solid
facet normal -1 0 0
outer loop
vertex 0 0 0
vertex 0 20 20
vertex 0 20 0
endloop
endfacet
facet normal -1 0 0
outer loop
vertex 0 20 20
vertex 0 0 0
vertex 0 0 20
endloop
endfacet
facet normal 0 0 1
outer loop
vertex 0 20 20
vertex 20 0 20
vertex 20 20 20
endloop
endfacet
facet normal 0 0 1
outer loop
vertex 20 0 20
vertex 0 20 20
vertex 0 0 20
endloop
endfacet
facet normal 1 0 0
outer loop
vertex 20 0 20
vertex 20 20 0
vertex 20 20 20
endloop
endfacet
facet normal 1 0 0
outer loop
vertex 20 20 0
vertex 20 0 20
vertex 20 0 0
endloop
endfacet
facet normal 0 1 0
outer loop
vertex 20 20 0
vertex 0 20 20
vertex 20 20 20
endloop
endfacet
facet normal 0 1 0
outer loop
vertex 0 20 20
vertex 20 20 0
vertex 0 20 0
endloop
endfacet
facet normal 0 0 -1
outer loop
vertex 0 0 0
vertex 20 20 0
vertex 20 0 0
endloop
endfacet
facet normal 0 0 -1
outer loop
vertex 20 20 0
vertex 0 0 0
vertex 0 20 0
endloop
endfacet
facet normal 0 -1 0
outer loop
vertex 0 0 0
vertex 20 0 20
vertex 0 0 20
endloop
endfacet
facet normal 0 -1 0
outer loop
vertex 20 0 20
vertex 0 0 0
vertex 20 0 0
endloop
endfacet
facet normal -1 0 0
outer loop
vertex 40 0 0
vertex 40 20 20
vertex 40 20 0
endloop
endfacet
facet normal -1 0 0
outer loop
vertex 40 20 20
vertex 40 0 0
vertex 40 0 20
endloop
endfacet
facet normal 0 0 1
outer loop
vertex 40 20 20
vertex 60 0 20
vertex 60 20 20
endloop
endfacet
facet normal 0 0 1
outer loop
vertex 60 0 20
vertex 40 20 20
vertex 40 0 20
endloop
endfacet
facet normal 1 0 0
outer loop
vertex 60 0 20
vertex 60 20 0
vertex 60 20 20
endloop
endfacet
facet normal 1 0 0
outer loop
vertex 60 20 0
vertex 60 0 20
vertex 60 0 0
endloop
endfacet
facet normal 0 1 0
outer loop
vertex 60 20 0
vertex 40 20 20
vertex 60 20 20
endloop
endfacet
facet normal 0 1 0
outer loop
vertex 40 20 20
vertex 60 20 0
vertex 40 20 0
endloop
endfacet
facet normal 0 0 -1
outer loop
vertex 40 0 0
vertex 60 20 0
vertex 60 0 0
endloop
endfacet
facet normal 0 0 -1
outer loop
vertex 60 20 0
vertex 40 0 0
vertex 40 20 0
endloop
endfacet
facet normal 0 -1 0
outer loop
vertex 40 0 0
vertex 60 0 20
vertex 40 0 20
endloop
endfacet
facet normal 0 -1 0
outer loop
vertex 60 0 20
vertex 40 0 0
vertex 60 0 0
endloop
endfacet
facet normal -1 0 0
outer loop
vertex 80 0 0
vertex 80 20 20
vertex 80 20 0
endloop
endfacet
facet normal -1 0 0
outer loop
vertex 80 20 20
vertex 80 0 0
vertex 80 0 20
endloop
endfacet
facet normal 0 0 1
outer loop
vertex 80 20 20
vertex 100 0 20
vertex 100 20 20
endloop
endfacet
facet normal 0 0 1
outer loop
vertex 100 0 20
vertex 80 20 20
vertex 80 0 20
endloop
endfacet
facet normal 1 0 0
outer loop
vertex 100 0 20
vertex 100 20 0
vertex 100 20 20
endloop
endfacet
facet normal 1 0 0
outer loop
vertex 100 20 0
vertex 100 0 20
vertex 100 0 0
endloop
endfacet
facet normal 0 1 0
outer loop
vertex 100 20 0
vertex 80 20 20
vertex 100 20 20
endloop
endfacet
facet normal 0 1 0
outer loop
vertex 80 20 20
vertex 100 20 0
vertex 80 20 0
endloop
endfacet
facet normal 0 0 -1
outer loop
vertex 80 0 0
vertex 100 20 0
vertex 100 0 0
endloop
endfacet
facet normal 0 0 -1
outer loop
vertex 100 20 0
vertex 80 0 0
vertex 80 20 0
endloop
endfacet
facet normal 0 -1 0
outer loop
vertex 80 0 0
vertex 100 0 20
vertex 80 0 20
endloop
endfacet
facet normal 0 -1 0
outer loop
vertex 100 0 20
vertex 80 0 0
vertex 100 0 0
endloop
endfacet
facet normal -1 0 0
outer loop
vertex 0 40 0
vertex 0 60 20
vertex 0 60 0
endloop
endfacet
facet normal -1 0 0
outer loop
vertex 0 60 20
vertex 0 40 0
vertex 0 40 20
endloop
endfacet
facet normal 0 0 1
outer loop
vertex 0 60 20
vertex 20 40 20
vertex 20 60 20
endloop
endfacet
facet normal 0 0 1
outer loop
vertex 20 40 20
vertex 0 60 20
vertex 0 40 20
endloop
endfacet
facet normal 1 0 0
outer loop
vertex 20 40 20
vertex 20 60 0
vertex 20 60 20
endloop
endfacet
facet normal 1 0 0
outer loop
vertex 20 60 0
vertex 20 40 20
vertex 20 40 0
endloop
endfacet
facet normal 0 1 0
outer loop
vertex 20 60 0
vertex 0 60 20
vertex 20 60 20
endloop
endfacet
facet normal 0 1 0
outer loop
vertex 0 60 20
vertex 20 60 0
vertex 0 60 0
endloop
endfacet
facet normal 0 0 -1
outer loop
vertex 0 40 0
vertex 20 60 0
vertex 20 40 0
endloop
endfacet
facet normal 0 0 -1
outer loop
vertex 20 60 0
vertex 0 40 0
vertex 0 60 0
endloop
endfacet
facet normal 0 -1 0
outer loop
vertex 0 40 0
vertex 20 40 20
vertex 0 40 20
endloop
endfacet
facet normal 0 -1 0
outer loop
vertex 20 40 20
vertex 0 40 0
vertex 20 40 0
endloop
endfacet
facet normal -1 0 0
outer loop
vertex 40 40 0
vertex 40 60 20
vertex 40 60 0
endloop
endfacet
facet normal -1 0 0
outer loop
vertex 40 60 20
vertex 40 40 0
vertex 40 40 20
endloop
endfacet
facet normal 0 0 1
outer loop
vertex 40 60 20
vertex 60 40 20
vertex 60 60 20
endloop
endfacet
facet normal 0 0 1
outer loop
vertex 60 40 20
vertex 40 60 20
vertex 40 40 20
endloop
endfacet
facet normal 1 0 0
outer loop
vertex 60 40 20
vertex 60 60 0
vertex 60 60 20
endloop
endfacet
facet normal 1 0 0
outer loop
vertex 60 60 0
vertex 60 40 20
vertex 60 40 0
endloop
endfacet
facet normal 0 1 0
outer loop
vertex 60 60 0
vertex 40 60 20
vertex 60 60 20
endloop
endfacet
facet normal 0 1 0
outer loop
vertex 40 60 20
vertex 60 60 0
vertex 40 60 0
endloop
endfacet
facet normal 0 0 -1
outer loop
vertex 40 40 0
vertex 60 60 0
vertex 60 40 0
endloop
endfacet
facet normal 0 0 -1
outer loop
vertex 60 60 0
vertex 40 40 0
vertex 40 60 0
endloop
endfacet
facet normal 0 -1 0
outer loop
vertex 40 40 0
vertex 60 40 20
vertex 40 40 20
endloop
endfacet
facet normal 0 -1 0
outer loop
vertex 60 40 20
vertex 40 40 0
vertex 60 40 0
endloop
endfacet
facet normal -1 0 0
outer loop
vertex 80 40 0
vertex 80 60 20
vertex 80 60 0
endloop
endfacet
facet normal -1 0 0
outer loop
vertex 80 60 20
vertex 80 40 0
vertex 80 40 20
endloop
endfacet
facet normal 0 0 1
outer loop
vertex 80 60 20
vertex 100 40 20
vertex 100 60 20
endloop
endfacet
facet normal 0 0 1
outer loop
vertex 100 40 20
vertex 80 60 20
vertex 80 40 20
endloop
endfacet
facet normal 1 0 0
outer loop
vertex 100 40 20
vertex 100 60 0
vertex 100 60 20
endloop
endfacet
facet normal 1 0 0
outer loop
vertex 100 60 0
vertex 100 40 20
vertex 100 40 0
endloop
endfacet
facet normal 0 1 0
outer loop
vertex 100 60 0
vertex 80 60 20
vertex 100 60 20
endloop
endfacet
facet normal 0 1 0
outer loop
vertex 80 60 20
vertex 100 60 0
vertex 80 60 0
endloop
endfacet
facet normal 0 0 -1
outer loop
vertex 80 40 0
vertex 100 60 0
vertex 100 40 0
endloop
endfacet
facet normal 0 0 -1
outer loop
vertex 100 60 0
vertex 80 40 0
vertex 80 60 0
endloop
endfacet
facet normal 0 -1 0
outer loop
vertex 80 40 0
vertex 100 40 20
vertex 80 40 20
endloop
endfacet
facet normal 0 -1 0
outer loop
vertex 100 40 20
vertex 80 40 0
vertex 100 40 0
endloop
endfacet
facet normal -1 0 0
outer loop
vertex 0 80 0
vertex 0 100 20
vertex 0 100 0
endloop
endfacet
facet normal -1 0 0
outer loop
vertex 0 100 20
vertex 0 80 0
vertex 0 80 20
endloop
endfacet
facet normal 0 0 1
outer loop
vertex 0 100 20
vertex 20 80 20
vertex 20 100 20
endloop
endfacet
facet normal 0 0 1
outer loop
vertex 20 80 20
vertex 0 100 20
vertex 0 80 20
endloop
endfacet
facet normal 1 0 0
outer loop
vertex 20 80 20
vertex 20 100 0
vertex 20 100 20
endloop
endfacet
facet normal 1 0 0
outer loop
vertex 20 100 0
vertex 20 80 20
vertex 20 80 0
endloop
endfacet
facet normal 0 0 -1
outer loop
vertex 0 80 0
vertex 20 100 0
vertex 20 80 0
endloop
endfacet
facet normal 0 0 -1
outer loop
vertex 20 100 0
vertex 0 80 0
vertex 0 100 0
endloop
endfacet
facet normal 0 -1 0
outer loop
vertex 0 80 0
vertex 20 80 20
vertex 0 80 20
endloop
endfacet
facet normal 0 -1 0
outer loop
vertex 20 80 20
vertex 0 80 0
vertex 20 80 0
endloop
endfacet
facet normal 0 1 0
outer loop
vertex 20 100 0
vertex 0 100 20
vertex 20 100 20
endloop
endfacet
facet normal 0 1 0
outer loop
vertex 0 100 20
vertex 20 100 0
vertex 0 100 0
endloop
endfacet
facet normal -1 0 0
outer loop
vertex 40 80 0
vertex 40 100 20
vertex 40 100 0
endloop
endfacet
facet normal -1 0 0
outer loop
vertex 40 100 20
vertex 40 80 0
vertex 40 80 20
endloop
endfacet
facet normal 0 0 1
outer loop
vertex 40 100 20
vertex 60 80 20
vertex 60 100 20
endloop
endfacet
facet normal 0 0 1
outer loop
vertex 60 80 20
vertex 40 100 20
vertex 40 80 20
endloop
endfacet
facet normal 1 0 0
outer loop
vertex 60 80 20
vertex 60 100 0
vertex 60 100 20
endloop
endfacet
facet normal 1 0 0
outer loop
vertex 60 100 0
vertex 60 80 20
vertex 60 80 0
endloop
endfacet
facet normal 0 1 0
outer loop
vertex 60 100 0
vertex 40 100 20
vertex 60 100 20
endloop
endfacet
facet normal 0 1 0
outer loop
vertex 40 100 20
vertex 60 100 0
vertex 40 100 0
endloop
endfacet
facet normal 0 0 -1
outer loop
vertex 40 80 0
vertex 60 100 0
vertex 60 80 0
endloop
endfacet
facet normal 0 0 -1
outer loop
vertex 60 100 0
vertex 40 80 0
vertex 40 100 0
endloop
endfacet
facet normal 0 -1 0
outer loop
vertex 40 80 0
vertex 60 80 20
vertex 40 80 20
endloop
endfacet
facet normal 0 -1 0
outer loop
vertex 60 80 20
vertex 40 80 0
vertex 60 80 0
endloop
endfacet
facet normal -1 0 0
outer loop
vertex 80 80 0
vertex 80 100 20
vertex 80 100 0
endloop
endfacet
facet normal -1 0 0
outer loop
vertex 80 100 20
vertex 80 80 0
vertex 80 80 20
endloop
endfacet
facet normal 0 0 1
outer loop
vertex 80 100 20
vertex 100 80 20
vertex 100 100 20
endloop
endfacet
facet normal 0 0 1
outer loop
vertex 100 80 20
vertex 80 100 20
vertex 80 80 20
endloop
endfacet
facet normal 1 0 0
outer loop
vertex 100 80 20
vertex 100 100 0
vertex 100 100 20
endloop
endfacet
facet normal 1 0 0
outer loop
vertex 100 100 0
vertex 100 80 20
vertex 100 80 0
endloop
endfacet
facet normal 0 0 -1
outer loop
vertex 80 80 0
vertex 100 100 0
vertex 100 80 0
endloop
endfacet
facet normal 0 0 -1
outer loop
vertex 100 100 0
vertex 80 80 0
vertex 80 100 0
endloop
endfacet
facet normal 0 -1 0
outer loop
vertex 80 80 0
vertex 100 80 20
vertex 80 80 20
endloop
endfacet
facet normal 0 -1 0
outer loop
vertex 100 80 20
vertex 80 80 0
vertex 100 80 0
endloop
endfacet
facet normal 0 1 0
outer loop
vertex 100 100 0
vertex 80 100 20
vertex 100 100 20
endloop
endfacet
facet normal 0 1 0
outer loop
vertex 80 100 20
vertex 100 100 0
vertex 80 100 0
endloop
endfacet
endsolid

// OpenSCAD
/* multiple_cube_objects.scad
Author: andimoto@posteo.de
----------------------------
 */


for(b = [0:2])
{
  for(a = [0:2])
  {
    translate([a*40,b*40,0]) cube([20,20,20]);
  }
}
